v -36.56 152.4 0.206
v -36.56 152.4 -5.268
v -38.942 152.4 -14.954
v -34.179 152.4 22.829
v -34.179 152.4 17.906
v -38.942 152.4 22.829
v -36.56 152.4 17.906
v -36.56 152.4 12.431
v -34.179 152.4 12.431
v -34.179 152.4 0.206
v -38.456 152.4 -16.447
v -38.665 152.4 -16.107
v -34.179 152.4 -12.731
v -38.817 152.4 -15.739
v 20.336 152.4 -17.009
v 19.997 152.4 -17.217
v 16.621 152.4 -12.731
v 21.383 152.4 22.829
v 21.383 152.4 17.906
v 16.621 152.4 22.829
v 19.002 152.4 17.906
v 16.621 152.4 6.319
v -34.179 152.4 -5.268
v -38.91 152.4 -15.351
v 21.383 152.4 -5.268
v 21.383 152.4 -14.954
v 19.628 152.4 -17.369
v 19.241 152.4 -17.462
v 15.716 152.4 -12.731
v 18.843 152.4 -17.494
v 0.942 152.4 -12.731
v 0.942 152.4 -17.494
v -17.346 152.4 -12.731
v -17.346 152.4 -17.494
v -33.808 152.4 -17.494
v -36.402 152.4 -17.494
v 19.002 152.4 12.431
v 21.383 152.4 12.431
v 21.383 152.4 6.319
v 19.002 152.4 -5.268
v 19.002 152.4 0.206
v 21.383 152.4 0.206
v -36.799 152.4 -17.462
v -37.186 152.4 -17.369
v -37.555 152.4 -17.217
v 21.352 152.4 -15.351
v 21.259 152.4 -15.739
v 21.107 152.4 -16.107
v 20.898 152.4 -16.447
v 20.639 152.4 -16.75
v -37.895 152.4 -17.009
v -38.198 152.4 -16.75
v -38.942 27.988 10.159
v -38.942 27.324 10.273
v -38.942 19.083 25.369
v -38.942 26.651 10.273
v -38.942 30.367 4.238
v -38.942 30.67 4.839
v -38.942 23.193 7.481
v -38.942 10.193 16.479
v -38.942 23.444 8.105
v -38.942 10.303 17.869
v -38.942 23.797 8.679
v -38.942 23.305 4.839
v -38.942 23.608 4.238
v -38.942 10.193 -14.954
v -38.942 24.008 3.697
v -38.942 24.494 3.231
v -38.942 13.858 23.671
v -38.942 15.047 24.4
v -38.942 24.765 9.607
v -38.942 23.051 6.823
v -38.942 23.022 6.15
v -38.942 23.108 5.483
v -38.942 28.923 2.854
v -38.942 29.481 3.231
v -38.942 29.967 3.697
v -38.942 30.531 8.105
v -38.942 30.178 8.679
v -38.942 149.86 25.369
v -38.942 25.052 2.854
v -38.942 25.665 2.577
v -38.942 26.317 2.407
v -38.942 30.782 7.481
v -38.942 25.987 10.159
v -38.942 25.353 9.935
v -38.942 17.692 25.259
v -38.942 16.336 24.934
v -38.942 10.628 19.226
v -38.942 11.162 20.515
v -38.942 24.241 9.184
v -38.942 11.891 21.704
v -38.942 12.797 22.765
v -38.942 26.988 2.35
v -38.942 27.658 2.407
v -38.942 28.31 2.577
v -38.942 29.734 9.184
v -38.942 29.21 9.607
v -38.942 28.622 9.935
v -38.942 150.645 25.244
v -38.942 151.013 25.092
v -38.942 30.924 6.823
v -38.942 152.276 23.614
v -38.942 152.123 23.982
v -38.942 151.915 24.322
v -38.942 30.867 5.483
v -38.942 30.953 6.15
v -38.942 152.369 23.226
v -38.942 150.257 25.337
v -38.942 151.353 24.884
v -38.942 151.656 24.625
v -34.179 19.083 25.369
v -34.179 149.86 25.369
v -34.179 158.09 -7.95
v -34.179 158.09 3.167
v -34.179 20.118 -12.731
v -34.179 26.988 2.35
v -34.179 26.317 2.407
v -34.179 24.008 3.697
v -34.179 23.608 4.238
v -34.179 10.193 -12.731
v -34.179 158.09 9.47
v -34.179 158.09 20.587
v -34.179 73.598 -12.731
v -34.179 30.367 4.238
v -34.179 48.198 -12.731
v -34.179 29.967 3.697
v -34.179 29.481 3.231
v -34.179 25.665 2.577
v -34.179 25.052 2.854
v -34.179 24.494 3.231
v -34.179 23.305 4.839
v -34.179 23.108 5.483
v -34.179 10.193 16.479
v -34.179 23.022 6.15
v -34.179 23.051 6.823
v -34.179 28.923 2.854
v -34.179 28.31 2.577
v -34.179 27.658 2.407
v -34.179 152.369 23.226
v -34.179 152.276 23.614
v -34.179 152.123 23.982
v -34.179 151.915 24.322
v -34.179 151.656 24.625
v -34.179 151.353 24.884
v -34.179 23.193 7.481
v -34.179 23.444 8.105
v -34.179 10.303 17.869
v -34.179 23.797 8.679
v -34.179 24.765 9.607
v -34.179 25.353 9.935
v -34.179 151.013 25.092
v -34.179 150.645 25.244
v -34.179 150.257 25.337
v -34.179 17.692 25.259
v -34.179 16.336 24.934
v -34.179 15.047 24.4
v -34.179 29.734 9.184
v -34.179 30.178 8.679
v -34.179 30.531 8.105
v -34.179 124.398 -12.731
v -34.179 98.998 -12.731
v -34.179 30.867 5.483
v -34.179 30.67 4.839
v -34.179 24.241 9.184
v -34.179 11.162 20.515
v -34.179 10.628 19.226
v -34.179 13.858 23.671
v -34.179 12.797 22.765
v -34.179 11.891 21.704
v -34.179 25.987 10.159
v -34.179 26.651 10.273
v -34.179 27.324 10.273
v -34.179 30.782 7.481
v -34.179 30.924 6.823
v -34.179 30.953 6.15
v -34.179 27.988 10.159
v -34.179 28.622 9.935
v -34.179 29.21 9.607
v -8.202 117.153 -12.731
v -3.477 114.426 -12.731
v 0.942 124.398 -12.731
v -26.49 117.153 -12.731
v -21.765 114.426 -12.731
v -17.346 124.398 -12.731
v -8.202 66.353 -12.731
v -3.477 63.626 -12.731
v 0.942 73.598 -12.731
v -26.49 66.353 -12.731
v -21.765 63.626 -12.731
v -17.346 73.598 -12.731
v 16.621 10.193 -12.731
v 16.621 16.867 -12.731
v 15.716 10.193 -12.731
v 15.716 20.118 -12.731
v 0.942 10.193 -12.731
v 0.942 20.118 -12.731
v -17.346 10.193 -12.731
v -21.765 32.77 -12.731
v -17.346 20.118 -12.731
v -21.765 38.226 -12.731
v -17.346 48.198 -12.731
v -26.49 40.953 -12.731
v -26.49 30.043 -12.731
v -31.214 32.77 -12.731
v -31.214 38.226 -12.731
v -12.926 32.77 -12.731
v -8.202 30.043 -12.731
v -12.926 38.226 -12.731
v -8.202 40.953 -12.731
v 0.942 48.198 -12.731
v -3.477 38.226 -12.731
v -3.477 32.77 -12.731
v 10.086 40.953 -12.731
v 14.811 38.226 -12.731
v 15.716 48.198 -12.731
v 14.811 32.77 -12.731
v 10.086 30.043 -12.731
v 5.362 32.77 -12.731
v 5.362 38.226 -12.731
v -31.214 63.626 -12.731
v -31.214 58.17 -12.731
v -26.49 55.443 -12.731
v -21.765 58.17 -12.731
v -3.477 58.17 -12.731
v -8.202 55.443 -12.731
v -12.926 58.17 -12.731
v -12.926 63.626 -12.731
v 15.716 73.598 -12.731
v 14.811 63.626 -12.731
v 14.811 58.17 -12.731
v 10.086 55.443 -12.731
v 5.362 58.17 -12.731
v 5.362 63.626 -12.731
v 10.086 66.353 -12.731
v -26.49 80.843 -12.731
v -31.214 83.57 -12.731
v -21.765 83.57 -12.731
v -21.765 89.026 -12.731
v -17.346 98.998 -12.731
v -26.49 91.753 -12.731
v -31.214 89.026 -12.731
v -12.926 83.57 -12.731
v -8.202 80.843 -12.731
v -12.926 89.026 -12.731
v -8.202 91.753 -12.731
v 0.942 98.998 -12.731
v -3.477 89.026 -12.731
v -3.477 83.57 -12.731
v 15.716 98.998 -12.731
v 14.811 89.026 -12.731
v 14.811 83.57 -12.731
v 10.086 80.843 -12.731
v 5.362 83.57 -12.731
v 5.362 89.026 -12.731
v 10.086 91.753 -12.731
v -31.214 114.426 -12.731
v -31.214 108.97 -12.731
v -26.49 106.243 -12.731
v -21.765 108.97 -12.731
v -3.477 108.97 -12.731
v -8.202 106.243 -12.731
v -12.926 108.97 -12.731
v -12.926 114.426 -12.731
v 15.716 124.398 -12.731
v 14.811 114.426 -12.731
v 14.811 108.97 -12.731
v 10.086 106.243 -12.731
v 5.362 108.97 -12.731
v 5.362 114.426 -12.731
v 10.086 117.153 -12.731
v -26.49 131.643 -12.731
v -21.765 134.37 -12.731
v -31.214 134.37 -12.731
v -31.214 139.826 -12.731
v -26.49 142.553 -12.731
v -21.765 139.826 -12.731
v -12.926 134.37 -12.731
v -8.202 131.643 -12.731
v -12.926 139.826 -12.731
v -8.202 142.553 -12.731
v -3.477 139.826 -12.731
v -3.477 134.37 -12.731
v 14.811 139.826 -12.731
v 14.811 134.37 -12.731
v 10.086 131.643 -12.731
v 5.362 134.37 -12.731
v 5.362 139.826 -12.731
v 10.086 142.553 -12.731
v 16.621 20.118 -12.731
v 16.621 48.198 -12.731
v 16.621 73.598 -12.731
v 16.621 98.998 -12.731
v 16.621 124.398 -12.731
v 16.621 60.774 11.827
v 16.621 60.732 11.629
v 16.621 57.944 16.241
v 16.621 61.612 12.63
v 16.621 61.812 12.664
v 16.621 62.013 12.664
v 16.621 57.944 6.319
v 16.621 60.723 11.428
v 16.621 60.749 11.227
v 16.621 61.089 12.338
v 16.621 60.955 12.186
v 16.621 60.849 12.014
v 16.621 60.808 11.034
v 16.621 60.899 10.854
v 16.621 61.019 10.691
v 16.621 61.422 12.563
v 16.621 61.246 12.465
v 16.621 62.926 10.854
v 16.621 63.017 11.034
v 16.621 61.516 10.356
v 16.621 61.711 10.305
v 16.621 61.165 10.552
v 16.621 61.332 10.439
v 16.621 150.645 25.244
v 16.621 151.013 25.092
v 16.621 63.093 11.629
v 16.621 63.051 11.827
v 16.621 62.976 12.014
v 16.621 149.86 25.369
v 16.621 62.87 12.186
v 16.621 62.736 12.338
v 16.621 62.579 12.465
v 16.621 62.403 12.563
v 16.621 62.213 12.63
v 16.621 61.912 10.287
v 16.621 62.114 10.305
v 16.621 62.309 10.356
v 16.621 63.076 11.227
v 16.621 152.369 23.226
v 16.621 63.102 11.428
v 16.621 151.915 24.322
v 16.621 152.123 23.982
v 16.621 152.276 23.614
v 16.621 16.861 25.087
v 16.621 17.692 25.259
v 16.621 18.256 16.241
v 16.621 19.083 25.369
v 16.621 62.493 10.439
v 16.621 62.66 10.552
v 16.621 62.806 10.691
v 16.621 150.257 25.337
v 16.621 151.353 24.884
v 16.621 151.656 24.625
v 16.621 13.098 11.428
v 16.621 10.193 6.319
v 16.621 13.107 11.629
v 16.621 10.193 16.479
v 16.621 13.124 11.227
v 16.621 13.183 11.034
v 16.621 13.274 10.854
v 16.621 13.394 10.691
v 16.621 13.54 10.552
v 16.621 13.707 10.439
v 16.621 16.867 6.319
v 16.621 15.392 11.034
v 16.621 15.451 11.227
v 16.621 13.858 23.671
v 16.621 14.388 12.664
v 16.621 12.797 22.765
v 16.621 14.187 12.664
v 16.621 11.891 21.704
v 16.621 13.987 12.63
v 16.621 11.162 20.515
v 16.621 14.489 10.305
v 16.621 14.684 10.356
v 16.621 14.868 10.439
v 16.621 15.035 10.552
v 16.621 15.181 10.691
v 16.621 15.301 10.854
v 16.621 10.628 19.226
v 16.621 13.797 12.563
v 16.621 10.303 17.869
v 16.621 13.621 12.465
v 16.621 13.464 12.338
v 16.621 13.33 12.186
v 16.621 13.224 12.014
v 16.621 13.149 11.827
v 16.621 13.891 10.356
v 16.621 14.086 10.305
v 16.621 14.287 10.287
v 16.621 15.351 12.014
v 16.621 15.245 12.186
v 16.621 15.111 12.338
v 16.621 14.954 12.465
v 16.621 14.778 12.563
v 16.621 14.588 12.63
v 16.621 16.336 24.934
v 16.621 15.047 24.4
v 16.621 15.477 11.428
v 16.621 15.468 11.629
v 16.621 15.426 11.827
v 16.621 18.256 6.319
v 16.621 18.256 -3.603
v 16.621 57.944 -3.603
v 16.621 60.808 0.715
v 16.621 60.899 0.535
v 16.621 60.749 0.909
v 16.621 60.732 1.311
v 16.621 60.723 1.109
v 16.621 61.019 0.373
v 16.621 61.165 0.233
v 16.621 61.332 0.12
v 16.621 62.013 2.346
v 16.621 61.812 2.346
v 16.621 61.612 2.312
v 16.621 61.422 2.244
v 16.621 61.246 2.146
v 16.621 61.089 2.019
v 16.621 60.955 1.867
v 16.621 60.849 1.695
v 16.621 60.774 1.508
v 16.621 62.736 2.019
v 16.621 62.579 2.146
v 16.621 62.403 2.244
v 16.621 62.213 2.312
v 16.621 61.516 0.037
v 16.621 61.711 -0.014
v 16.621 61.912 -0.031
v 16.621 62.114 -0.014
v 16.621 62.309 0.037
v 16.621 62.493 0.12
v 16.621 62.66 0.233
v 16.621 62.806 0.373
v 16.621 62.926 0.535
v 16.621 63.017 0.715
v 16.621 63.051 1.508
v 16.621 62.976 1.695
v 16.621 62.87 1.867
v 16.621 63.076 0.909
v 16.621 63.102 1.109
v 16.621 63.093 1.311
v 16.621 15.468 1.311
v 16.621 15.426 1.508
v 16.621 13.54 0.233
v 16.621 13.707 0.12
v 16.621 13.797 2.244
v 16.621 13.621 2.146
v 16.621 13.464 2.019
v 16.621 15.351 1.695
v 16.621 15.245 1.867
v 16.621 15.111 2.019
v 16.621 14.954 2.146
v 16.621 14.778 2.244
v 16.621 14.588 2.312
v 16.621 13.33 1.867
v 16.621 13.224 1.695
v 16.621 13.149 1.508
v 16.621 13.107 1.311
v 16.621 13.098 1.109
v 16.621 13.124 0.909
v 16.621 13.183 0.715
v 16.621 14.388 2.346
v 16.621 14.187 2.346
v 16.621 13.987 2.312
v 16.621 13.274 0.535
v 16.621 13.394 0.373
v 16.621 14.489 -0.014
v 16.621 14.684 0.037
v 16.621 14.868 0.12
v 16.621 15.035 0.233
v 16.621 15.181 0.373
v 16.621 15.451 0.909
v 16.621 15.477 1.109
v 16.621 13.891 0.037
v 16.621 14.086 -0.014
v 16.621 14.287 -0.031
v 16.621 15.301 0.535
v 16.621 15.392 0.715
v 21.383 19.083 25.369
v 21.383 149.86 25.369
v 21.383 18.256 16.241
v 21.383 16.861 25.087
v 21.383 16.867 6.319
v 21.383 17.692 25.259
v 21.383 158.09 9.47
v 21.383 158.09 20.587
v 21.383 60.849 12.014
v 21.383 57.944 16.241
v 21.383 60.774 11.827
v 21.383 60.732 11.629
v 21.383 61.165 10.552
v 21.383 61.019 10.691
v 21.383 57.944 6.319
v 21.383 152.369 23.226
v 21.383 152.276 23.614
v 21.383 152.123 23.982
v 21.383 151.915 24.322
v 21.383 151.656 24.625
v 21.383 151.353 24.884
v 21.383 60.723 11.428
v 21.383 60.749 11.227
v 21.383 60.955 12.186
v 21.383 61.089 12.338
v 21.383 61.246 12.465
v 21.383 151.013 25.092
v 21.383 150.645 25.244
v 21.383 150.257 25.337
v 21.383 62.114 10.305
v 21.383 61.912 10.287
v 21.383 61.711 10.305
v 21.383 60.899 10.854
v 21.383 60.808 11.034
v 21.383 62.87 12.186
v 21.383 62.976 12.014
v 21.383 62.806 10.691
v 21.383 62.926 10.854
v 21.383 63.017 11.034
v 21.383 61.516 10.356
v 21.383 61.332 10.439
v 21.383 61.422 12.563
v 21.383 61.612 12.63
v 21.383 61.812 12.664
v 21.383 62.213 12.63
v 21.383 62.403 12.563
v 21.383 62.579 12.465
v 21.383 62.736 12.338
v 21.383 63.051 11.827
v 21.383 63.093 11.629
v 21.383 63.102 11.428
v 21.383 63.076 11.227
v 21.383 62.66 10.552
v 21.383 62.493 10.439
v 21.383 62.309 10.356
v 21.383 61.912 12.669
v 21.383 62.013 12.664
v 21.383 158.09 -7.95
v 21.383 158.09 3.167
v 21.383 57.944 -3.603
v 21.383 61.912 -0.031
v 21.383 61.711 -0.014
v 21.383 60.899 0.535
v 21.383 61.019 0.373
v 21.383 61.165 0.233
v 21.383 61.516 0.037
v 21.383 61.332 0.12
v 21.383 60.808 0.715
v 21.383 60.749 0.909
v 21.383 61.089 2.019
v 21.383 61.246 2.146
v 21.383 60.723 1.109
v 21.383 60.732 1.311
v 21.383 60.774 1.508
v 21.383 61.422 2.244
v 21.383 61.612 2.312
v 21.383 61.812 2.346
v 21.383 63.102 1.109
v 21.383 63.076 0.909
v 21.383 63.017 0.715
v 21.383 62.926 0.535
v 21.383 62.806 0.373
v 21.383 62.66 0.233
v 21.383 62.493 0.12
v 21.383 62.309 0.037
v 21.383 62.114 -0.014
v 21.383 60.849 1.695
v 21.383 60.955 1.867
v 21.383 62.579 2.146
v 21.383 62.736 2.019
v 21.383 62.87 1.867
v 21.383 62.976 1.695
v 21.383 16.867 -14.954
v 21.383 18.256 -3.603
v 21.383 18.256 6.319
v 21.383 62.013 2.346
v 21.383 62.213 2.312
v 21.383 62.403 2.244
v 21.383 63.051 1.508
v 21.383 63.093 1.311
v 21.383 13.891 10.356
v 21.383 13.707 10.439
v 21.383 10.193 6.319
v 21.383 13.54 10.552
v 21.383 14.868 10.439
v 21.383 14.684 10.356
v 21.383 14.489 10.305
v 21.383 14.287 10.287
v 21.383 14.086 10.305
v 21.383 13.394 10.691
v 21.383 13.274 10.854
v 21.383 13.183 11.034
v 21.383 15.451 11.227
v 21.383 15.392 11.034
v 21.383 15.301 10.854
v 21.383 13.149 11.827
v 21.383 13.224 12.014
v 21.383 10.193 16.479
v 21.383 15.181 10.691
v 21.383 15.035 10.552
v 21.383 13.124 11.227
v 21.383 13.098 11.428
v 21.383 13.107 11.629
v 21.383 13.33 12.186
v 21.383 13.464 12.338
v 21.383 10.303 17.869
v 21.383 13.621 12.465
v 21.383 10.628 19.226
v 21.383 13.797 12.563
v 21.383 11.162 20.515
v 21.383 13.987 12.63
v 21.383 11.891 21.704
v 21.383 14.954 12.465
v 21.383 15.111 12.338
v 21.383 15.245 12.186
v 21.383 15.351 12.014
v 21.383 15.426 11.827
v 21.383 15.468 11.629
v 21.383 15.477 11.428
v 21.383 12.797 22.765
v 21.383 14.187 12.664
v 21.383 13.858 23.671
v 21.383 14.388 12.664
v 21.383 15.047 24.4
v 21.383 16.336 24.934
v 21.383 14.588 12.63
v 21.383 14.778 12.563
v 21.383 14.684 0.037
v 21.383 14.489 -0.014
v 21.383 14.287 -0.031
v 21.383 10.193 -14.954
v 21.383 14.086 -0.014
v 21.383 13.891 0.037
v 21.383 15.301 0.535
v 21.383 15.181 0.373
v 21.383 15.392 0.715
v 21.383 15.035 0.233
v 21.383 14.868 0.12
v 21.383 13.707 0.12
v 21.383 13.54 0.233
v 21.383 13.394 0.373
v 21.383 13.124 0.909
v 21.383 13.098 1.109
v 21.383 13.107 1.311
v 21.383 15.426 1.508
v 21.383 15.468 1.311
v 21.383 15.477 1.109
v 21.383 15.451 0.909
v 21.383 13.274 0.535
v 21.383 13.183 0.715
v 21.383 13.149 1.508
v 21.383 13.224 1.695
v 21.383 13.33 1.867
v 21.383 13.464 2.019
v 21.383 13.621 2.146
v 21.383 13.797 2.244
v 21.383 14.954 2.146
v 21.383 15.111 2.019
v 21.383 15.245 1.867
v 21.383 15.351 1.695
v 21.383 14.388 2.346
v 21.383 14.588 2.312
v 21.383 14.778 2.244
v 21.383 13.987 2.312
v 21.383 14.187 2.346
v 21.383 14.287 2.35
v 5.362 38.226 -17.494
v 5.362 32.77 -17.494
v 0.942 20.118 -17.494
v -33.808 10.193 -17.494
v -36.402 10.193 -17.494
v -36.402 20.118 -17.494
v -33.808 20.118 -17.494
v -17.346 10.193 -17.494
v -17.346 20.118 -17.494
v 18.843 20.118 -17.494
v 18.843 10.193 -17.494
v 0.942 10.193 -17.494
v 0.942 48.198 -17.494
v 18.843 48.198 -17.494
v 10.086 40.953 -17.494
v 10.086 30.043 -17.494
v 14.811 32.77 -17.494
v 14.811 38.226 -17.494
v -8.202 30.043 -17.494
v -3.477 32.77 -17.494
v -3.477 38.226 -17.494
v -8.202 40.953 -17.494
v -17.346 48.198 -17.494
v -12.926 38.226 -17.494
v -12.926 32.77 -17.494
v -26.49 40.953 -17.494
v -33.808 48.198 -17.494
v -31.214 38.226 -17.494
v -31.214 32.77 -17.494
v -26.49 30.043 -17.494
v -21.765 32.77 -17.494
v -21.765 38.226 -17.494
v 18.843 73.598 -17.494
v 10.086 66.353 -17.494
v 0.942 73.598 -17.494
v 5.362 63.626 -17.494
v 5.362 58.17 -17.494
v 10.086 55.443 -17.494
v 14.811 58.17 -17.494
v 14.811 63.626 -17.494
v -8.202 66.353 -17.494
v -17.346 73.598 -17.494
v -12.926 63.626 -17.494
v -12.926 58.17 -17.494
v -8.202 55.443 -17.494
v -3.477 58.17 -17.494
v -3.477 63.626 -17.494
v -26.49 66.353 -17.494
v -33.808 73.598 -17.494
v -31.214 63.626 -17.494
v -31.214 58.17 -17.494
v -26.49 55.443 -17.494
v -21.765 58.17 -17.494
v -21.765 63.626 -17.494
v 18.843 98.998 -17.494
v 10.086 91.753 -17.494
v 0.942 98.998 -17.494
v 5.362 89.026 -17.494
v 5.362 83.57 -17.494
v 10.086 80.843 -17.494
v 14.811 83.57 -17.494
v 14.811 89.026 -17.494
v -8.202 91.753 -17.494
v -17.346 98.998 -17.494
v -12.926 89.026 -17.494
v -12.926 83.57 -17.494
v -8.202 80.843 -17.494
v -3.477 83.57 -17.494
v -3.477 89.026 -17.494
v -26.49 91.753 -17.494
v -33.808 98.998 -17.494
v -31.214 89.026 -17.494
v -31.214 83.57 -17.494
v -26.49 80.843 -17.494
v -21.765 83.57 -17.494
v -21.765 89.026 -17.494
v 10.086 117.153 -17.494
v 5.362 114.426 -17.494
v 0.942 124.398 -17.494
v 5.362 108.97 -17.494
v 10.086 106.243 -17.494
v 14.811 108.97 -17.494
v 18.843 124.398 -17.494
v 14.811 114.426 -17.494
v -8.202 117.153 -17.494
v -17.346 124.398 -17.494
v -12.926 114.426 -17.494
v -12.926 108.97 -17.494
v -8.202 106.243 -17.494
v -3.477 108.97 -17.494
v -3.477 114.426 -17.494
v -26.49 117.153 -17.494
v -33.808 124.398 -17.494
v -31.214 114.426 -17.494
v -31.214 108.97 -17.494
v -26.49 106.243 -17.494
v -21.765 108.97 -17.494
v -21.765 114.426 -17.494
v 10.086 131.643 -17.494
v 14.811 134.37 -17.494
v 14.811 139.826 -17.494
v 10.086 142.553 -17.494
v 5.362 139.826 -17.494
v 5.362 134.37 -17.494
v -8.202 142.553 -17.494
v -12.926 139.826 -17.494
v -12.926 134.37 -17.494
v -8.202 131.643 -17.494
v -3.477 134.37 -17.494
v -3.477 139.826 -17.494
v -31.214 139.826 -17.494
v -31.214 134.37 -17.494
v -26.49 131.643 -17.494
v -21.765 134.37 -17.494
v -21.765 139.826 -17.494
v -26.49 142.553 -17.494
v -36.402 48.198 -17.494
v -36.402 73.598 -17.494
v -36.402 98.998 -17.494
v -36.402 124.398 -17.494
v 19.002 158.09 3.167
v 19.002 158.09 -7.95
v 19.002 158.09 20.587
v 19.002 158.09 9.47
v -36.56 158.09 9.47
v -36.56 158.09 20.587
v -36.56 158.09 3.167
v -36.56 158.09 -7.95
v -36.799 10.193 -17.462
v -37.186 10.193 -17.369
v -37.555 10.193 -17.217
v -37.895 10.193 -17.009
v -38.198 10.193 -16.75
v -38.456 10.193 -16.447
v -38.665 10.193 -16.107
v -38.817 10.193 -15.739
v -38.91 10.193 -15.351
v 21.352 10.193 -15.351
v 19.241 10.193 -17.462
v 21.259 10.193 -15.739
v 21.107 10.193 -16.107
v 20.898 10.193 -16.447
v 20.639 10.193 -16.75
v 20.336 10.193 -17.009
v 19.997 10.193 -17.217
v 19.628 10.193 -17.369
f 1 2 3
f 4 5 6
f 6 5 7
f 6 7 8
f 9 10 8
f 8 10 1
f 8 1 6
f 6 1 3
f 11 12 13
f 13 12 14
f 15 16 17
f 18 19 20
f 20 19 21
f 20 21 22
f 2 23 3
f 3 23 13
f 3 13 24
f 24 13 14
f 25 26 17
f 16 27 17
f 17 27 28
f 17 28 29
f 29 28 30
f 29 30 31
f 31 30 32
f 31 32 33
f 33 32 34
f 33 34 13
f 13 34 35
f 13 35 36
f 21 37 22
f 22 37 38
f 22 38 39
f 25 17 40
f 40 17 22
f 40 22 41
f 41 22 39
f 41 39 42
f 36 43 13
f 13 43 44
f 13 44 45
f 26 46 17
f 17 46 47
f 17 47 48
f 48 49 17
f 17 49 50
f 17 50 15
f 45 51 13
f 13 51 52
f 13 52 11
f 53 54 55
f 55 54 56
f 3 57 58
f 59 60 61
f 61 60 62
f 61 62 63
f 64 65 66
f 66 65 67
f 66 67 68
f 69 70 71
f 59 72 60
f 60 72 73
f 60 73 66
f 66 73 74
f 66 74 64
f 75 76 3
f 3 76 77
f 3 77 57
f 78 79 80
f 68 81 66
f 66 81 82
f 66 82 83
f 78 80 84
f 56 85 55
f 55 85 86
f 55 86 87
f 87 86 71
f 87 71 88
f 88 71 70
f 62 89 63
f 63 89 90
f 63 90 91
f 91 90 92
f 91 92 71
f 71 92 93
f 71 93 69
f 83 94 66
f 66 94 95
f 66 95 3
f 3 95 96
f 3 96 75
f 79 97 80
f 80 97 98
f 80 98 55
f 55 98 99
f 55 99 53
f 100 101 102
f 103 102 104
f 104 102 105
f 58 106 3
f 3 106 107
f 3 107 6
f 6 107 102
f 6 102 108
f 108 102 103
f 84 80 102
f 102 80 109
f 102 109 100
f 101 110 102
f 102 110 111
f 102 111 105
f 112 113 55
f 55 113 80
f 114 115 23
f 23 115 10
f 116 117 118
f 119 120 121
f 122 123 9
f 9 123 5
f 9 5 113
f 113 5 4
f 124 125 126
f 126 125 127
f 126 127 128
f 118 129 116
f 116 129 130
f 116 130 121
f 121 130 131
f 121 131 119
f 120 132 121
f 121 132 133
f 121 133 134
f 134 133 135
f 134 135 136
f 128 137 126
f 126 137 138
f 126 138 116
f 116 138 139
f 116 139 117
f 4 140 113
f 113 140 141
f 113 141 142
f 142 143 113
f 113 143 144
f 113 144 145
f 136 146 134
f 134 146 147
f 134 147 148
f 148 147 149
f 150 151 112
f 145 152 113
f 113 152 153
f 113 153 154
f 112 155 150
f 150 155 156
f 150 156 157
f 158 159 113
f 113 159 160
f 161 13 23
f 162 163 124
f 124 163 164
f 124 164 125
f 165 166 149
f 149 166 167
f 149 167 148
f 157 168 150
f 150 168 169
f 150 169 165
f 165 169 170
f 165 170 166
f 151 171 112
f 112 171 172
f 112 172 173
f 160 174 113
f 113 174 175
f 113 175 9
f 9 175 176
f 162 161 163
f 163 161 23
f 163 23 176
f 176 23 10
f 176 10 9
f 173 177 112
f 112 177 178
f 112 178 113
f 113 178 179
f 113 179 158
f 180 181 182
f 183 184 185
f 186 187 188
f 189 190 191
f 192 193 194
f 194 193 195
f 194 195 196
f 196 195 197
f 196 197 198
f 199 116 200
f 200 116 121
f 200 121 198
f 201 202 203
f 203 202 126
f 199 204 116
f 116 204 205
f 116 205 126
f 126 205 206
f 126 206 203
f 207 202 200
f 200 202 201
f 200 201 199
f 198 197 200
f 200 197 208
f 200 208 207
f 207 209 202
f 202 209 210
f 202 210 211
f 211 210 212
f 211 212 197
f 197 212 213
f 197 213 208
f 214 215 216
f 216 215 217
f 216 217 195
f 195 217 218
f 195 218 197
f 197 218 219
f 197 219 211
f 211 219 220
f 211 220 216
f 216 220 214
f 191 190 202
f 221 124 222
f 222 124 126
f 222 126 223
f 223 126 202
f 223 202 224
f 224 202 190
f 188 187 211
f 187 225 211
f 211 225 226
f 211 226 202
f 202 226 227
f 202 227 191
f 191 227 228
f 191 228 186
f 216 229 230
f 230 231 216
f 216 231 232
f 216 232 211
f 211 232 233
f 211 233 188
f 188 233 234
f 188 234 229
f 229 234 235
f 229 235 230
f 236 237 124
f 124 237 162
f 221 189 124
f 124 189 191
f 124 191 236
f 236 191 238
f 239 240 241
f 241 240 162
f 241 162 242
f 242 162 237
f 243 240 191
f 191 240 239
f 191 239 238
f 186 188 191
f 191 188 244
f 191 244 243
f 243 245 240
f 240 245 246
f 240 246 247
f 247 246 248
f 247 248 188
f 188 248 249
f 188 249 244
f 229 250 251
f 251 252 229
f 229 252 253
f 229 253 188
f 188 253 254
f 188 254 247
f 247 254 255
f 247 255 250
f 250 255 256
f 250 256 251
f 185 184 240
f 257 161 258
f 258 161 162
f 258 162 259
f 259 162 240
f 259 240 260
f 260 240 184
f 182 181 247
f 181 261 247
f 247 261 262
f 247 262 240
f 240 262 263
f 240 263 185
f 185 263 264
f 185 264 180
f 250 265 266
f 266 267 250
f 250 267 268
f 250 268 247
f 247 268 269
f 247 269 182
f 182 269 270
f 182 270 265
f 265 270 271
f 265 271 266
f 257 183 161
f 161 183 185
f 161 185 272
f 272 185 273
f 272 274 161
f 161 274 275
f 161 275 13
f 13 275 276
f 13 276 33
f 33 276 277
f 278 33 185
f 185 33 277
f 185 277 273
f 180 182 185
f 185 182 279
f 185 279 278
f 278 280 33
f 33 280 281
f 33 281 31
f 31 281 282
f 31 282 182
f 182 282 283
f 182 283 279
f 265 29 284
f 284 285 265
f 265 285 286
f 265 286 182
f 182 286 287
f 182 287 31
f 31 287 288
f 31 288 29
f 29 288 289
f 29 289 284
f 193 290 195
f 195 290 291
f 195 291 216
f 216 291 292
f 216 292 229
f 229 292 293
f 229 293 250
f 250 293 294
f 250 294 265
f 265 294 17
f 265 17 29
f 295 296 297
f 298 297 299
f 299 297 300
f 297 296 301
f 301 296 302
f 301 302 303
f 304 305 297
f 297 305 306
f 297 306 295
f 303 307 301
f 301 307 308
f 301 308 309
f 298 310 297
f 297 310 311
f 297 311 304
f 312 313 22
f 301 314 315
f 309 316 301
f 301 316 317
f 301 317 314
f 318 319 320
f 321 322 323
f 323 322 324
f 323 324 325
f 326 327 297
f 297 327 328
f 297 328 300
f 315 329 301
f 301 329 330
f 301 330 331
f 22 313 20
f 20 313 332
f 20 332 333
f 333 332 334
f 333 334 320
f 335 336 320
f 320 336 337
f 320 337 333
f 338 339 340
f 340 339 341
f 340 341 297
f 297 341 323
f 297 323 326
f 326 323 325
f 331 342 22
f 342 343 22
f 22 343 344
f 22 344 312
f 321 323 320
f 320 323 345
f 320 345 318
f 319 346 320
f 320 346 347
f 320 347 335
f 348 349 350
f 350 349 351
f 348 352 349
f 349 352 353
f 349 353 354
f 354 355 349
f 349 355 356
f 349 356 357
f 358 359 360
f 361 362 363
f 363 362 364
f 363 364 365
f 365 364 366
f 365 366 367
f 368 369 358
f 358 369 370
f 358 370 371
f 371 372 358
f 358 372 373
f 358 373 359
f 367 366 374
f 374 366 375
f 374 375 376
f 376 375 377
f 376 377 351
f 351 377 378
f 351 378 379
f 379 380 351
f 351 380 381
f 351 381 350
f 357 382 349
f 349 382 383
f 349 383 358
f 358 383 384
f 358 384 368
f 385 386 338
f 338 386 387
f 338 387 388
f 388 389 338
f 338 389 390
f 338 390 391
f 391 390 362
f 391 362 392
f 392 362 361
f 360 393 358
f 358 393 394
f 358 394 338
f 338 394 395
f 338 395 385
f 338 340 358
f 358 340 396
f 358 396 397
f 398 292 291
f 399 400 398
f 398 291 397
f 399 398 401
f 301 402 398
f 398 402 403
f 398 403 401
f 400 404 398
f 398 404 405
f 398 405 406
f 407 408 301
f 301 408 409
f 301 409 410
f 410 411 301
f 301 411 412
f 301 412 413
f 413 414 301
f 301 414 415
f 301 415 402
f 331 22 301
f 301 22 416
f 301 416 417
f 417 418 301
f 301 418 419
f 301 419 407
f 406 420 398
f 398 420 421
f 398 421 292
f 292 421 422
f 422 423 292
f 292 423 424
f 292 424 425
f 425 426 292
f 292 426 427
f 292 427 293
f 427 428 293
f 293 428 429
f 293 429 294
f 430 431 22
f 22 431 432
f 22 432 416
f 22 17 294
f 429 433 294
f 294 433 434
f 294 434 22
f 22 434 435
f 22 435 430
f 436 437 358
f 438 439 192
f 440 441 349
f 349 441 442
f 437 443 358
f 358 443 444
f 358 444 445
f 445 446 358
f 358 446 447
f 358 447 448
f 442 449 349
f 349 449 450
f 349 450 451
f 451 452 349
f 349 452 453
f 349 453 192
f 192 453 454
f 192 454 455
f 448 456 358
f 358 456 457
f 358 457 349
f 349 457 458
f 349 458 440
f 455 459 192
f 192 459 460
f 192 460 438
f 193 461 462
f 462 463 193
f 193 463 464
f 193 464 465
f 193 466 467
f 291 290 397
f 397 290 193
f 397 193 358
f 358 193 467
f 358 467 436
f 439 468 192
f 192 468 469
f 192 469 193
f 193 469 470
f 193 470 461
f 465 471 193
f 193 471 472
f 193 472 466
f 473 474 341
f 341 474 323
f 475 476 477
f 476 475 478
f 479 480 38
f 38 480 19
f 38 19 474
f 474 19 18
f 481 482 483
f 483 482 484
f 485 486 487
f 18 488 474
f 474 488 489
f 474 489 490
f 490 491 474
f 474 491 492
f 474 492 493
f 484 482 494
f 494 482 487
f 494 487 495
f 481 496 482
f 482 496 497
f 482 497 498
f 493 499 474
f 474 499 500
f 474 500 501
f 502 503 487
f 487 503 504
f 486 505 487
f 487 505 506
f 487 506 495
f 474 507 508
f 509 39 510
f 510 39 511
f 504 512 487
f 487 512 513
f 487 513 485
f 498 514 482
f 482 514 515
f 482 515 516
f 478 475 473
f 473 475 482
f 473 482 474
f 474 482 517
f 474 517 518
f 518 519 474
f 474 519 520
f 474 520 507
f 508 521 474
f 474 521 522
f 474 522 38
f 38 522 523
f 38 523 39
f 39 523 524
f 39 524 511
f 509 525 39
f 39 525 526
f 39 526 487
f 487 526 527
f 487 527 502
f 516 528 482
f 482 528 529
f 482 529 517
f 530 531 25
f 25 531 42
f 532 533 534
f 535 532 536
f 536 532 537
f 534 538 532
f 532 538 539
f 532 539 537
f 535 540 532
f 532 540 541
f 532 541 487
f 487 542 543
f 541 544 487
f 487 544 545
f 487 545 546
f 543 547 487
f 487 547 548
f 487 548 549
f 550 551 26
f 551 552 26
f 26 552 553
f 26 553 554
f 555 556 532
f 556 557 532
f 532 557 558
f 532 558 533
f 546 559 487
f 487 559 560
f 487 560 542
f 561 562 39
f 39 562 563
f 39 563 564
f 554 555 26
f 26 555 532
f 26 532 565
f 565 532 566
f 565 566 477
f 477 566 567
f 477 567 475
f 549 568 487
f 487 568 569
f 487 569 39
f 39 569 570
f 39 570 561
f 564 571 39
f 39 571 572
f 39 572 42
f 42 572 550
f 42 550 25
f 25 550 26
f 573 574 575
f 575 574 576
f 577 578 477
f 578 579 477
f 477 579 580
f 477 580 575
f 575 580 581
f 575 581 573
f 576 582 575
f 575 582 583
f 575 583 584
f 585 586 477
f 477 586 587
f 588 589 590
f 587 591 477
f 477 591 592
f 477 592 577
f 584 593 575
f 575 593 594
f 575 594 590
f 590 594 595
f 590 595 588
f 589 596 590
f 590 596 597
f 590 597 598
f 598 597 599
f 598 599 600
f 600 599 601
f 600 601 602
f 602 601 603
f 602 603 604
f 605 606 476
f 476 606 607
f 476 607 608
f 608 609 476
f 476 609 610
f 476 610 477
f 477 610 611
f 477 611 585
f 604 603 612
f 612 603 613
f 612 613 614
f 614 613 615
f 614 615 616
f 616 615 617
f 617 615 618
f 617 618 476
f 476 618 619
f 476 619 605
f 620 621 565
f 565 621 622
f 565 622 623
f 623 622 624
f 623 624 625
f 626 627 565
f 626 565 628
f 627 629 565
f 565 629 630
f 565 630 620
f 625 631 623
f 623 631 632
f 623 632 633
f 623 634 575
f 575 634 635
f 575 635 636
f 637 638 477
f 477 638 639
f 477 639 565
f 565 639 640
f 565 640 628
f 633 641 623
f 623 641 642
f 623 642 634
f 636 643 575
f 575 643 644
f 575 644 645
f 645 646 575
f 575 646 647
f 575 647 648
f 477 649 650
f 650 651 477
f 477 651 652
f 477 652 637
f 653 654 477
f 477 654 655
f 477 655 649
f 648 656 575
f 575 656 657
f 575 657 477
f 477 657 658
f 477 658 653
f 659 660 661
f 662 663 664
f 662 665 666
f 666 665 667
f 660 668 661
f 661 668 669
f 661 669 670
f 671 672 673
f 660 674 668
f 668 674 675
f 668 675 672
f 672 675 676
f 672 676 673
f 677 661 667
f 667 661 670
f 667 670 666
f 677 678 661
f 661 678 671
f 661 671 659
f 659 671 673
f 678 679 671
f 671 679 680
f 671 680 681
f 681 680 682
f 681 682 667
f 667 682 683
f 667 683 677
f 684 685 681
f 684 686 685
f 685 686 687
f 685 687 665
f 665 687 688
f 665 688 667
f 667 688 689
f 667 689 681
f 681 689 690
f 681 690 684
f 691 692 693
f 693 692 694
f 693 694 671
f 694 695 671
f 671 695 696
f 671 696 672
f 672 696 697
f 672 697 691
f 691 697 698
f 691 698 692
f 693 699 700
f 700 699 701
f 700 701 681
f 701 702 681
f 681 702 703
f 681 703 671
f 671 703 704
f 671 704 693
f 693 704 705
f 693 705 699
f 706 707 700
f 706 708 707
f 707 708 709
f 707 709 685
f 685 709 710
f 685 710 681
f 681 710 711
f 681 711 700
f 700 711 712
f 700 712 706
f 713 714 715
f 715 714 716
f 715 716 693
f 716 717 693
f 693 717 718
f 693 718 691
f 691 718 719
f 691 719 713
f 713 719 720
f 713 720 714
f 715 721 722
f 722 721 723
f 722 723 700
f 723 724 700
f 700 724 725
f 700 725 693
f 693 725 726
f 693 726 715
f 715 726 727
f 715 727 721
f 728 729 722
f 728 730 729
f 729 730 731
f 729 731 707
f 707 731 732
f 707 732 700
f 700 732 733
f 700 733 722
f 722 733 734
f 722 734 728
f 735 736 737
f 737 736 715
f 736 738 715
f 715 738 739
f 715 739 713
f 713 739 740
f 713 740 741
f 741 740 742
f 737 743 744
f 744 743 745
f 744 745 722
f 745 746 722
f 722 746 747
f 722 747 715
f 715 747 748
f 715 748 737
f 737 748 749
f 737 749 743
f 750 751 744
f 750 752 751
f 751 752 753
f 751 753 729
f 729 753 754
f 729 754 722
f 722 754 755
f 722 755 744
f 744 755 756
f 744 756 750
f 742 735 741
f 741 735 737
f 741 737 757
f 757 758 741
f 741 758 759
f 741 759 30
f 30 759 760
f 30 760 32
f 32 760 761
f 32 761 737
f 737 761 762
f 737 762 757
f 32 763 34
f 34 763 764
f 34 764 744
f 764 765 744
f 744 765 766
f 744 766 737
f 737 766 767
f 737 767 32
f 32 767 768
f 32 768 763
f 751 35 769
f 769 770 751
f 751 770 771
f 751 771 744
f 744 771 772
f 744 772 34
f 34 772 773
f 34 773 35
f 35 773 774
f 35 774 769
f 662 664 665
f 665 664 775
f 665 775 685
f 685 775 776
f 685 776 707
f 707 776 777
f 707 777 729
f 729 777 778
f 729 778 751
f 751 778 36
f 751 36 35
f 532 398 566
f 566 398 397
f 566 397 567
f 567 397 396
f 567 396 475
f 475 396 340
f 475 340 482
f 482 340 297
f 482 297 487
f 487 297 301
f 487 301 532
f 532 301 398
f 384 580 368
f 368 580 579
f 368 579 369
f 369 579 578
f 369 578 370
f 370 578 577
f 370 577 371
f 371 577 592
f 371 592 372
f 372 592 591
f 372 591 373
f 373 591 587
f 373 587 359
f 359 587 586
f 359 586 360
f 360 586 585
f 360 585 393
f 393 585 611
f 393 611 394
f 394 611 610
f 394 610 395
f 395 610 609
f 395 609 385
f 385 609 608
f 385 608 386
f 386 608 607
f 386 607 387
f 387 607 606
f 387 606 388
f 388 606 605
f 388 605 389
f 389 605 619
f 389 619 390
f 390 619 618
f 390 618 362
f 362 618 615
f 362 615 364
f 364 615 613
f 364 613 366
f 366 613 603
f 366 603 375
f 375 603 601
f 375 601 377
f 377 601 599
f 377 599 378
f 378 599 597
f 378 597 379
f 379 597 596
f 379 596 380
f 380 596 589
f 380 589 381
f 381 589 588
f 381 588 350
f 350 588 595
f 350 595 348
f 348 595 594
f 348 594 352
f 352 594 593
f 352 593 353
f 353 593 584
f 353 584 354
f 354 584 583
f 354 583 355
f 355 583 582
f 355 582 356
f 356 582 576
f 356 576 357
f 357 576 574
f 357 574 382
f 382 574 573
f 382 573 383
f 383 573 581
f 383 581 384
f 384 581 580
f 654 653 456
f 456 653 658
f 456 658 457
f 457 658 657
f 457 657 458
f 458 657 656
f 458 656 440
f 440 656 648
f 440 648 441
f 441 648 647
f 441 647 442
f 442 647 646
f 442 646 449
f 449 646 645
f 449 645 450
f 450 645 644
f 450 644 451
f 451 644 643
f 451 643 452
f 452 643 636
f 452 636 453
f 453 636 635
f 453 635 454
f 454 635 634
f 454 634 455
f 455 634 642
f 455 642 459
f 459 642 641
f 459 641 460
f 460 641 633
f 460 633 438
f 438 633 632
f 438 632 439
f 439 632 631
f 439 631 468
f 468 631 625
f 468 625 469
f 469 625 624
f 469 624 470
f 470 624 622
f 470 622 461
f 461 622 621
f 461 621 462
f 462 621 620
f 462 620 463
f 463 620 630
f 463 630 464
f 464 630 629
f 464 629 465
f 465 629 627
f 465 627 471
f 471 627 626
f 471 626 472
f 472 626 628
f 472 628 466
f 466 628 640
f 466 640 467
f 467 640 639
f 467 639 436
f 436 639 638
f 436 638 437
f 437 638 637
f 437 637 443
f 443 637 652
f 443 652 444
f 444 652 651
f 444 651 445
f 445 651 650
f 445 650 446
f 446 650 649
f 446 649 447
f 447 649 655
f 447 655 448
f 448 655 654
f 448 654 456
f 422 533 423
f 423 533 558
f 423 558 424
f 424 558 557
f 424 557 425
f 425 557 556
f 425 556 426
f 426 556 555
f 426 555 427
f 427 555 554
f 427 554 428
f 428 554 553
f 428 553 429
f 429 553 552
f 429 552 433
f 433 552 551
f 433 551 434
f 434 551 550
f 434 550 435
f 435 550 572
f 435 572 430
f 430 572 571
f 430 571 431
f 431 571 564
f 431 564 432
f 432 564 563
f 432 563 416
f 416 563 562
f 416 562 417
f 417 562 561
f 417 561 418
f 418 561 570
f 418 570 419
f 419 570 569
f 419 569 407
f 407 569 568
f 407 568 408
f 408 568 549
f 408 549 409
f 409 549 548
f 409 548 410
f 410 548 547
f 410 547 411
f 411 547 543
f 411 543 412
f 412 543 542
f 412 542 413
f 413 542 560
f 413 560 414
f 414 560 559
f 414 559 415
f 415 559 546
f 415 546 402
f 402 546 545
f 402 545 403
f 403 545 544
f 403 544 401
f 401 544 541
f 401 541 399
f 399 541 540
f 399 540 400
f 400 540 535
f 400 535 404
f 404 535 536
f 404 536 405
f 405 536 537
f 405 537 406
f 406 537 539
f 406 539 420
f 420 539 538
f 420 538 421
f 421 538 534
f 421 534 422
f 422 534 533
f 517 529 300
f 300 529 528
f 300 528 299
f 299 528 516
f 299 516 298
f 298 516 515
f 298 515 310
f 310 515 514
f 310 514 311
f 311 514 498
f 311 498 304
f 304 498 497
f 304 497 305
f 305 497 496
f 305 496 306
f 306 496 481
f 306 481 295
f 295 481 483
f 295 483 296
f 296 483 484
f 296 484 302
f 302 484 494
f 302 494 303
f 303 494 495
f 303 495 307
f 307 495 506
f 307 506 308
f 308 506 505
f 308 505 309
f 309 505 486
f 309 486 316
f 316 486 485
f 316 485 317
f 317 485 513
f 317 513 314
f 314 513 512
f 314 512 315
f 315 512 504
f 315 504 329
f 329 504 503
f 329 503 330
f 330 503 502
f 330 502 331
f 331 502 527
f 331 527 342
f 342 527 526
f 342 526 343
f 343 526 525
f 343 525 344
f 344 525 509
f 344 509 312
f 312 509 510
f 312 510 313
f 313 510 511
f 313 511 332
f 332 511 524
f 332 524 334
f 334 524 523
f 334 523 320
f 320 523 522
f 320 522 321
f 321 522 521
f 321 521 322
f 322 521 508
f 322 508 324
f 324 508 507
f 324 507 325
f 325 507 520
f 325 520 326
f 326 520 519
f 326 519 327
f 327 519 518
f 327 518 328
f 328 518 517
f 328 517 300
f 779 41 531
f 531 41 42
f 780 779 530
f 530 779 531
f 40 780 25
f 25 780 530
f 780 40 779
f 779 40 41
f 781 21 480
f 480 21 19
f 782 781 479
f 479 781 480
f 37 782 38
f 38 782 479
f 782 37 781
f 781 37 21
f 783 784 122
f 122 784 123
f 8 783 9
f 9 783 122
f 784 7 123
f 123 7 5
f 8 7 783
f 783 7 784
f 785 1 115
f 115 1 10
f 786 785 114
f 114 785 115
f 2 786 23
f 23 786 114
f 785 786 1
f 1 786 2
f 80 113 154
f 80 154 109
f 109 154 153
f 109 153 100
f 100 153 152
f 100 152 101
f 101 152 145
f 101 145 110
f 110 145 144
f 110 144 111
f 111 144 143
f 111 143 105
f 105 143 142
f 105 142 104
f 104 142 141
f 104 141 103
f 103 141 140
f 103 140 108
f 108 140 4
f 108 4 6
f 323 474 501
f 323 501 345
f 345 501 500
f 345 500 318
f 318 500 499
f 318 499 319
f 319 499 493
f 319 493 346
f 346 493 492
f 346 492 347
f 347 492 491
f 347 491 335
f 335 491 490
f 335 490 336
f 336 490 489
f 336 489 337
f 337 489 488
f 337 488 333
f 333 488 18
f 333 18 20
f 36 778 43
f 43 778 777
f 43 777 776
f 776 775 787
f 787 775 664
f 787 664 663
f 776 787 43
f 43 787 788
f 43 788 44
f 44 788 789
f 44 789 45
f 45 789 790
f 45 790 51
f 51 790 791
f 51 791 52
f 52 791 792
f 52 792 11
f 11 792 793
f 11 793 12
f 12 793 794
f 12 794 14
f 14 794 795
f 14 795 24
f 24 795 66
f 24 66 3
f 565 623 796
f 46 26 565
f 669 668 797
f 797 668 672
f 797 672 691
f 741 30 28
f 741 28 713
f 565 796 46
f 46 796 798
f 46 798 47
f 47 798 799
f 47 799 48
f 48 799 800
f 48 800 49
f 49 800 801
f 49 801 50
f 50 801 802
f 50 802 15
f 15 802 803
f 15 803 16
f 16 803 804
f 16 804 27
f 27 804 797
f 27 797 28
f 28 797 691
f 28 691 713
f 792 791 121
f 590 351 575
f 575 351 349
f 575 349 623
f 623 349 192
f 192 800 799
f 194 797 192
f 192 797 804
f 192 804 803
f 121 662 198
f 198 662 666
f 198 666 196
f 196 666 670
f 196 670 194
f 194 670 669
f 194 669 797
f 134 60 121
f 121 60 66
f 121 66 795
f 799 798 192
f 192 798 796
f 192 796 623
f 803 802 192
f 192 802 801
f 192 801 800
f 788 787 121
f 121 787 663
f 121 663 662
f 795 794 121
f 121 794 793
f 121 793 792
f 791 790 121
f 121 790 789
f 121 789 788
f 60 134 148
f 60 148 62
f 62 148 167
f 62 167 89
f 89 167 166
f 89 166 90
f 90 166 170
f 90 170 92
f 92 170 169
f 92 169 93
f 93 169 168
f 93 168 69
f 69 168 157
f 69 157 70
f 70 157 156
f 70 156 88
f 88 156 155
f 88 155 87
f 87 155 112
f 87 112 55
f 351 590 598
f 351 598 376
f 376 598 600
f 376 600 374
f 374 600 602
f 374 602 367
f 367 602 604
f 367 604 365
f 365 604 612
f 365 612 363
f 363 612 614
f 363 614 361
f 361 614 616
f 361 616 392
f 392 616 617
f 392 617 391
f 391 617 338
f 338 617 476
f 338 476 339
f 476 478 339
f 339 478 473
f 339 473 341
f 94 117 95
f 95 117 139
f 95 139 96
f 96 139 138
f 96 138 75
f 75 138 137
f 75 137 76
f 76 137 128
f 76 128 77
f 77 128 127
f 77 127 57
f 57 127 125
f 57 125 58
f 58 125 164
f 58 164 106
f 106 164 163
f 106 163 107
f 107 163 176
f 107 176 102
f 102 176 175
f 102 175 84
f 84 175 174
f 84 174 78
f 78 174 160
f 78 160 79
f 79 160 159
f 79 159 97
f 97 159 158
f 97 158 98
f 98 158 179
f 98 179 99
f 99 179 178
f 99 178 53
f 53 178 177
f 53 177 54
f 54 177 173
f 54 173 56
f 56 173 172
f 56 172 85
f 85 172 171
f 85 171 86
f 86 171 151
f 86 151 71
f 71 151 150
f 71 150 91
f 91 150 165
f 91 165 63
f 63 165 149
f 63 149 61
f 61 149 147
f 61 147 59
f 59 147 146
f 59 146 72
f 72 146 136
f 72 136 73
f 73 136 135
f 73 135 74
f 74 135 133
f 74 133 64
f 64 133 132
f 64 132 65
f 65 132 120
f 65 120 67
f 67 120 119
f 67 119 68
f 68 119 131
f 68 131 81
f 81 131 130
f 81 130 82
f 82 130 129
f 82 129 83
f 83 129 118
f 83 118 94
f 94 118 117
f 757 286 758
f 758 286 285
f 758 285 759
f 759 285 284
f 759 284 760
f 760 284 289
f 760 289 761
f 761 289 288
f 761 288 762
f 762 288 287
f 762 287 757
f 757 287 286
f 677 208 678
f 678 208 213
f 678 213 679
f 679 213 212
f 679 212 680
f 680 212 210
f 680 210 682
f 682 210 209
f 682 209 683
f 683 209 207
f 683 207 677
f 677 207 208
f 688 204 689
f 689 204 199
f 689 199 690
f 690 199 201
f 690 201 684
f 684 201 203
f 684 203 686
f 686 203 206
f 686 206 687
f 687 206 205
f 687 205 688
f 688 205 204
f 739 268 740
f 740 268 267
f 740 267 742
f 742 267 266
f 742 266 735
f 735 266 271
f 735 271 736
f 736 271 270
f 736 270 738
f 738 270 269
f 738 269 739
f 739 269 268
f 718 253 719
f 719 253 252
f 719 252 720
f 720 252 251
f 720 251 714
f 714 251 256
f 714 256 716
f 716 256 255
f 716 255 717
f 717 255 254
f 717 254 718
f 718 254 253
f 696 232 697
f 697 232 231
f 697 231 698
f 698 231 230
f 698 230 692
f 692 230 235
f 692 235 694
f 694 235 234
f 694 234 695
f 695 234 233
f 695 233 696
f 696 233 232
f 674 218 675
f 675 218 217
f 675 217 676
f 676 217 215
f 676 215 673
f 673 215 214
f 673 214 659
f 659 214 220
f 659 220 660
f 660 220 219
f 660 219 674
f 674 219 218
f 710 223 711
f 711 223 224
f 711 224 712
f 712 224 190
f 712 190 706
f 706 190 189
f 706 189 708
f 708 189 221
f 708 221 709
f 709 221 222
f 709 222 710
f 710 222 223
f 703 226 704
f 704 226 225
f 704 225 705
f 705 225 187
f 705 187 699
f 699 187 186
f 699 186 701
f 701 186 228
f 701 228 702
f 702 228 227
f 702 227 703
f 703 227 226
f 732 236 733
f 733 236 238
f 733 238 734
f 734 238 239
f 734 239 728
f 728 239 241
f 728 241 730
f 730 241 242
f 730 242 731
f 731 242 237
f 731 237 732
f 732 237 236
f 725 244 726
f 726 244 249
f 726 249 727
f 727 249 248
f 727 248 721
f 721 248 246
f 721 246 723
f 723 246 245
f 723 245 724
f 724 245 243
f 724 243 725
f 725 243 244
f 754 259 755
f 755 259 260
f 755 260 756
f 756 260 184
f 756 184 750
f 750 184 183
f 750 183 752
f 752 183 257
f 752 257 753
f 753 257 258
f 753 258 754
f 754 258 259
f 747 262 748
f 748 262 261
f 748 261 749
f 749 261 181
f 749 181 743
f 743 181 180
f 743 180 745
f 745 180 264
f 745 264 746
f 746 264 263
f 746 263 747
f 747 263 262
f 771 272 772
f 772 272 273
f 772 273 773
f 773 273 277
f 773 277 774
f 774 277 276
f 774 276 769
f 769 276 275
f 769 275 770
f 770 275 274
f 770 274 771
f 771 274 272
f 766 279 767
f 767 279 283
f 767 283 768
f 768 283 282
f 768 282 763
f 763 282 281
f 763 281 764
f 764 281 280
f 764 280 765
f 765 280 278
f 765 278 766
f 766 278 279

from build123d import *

# Parameters (mm, degrees)
BOSS_EXTRUDE1_DEPTH = 152.4
SKETCH2_R           = 1.190625
SKETCH2_W           = 19.84375
SKETCH2_H           = 39.6875
CUT_EXTRUDE1_DEPTH  = 6.35
CUT_EXTRUDE2_DEPTH  = 2.38125
CUT_EXTRUDE3_DEPTH  = 2.38125
BOSS_EXTRUDE2_DEPTH = 2.38125
BOSS_EXTRUDE3_DEPTH = 2.38125
FILLET1_R           = 2.54
SKETCH7_W           = 51.674409632
SKETCH7_H           = 14.688438898
CUT_EXTRUDE4_DEPTH  = 172.100000261
FILLET2_R           = 8.89
SKETCH8_R           = 3.96875
CUT_EXTRUDE5_DEPTH  = 170.479485102
CUT_EXTRUDE6_DEPTH  = 169.363218031


with BuildPart() as part:
    # Sketch1 → Boss-Extrude1 (new body)
    with BuildSketch(Plane(origin=(0, 0, 0), x_dir=(1, 0, 0), z_dir=(0, 1, 0))):
        Polygon((-38.941593287, 17.493761907), (21.383406713, 17.493761907), (21.383406713, -25.368738093), (16.620906713, -25.368738093), (16.620906713, 12.731261907), (-34.179093287, 12.731261907), (-34.179093287, -25.368738093), (-38.941593287, -25.368738093), align=None)
    extrude(amount=BOSS_EXTRUDE1_DEPTH)

    # Sketch2 → Cut-Extrude1 (cut)
    with BuildSketch(Plane(origin=(21.383406713, 0, 0), x_dir=(0, 0, -1), z_dir=(1, 0, 0))):
        with Locations((-11.478113093, 14.2875)):
            Circle(SKETCH2_R)
        with Locations((-1.159363093, 14.2875)):
            Circle(SKETCH2_R)
        with Locations((-1.159363093, 61.9125)):
            Circle(SKETCH2_R)
        with Locations((-11.478113093, 61.9125)):
            Circle(SKETCH2_R)
        with Locations((-6.318738093, 38.1)):
            Rectangle(SKETCH2_W, SKETCH2_H)
    extrude(amount=-CUT_EXTRUDE1_DEPTH, mode=Mode.SUBTRACT)

    # Sketch3 → Cut-Extrude2 (cut)
    with BuildSketch(Plane(origin=(21.383406713, 0, 0), x_dir=(0, 0, -1), z_dir=(1, 0, 0))):
        Polygon((-20.587285527, 5.690264064), (-9.47039523, 5.690264064), (-12.431175058, 0), (-17.905824551, 0), align=None)
        Polygon((-0.206301127, 0), (5.268348366, 0), (7.949809342, 5.690264064), (-3.167080955, 5.690264064), align=None)
    extrude(amount=-CUT_EXTRUDE2_DEPTH, mode=Mode.SUBTRACT)

    # Sketch4 → Cut-Extrude3 (cut)
    with BuildSketch(Plane(origin=(-34.179093287, 0, 0), x_dir=(0, 0, -1), z_dir=(1, 0, 0))):
        Polygon((-9.47039523, 5.690264064), (-20.587285527, 5.690264064), (-17.905824551, 0), (-12.431175058, 0), align=None)
        Polygon((5.268348366, 0), (7.949809342, 5.690264064), (-3.167080955, 5.690264064), (-0.206301127, 0), align=None)
    extrude(amount=-CUT_EXTRUDE3_DEPTH, mode=Mode.SUBTRACT)

    # Sketch5 → Boss-Extrude2 (add)
    with BuildSketch(Plane(origin=(21.383406713, 0, 0), x_dir=(0, 0, -1), z_dir=(1, 0, 0))):
        Polygon((-0.206301127, 152.4), (5.268348366, 152.4), (7.949809342, 158.090264064), (-3.167080955, 158.090264064), align=None)
        Polygon((-17.905824551, 152.4), (-12.431175058, 152.4), (-9.47039523, 158.090264064), (-20.587285527, 158.090264064), align=None)
    extrude(amount=-BOSS_EXTRUDE2_DEPTH)

    # Sketch6 → Boss-Extrude3 (add)
    with BuildSketch(Plane(origin=(-34.179093287, 0, 0), x_dir=(0, 0, -1), z_dir=(1, 0, 0))):
        Polygon((-17.905824551, 152.4), (-12.431175058, 152.4), (-9.47039523, 158.090264064), (-20.587285527, 158.090264064), align=None)
        Polygon((5.268348366, 152.4), (7.949809342, 158.090264064), (-3.167080955, 158.090264064), (-0.206301127, 152.4), align=None)
    extrude(amount=-BOSS_EXTRUDE3_DEPTH)

    # Fillet1
    fillet1_edges = [part.edges().sort_by_distance(p)[0] for p in [
        (-36.560343287, 0, 25.368738093),
        (-38.941593287, 76.2, -17.493761907),
        (21.383406713, 76.2, -17.493761907),
        (19.002156713, 152.4, 25.368738093),
        (-36.560343287, 152.4, 25.368738093),
        (19.002156713, 0, 25.368738093),
    ]]
    fillet(fillet1_edges, radius=FILLET1_R)

    # Sketch7 → Cut-Extrude4 (cut, through all)
    with BuildSketch(Plane(origin=(21.383406713, 0, 0), x_dir=(0, 0, -1), z_dir=(1, 0, 0))):
        with Locations((-4.704390425, 2.848923491)):
            Rectangle(SKETCH7_W, SKETCH7_H)
    extrude(amount=-CUT_EXTRUDE4_DEPTH, mode=Mode.SUBTRACT)

    # Fillet2
    fillet2_edges = [part.edges().sort_by_distance(p)[0] for p in [
        (-36.560343287, 10.19314294, 25.368738093),
        (19.002156713, 10.19314294, 25.368738093),
    ]]
    fillet(fillet2_edges, radius=FILLET2_R)

    # Sketch8 → Cut-Extrude5 (cut, through all)
    with BuildSketch(Plane(origin=(-34.179093287, 0, 0), x_dir=(0, 0, -1), z_dir=(1, 0, 0))):
        with Locations((-6.318738093, 26.9875)):
            Circle(SKETCH8_R)
    extrude(amount=-CUT_EXTRUDE5_DEPTH, mode=Mode.SUBTRACT)

    # Sketch9 → Cut-Extrude6 (cut, through all)
    with BuildSketch(Plane(origin=(0, 0, -17.493761907), x_dir=(-1, 0, 0), z_dir=(0, 0, -1))):
        Polygon((8.201765803, 131.642746086), (12.926215978, 134.370408666), (12.926215978, 139.825733827), (8.201765803, 142.553396407), (3.477315628, 139.825733827), (3.477315628, 134.370408666), align=None)
        Polygon((-10.086234197, 131.642746086), (-5.361784022, 134.370408666), (-5.361784022, 139.825733827), (-10.086234197, 142.553396407), (-14.810684372, 139.825733827), (-14.810684372, 134.370408666), align=None)
        Polygon((26.489765803, 131.642746086), (31.214215978, 134.370408666), (31.214215978, 139.825733827), (26.489765803, 142.553396407), (21.765315628, 139.825733827), (21.765315628, 134.370408666), align=None)
        Polygon((8.201765803, 106.242746086), (12.926215978, 108.970408666), (12.926215978, 114.425733827), (8.201765803, 117.153396407), (3.477315628, 114.425733827), (3.477315628, 108.970408666), align=None)
        Polygon((26.489765803, 106.242746086), (31.214215978, 108.970408666), (31.214215978, 114.425733827), (26.489765803, 117.153396407), (21.765315628, 114.425733827), (21.765315628, 108.970408666), align=None)
        Polygon((8.201765803, 80.842746086), (12.926215978, 83.570408666), (12.926215978, 89.025733827), (8.201765803, 91.753396407), (3.477315628, 89.025733827), (3.477315628, 83.570408666), align=None)
        Polygon((26.489765803, 80.842746086), (31.214215978, 83.570408666), (31.214215978, 89.025733827), (26.489765803, 91.753396407), (21.765315628, 89.025733827), (21.765315628, 83.570408666), align=None)
        Polygon((8.201765803, 55.442746086), (12.926215978, 58.170408666), (12.926215978, 63.625733827), (8.201765803, 66.353396407), (3.477315628, 63.625733827), (3.477315628, 58.170408666), align=None)
        Polygon((26.489765803, 55.442746086), (31.214215978, 58.170408666), (31.214215978, 63.625733827), (26.489765803, 66.353396407), (21.765315628, 63.625733827), (21.765315628, 58.170408666), align=None)
        Polygon((8.201765803, 30.042746086), (12.926215978, 32.770408666), (12.926215978, 38.225733827), (8.201765803, 40.953396407), (3.477315628, 38.225733827), (3.477315628, 32.770408666), align=None)
        Polygon((26.489765803, 30.042746086), (31.214215978, 32.770408666), (31.214215978, 38.225733827), (26.489765803, 40.953396407), (21.765315628, 38.225733827), (21.765315628, 32.770408666), align=None)
        Polygon((-10.086234197, 106.242746086), (-5.361784022, 108.970408666), (-5.361784022, 114.425733827), (-10.086234197, 117.153396407), (-14.810684372, 114.425733827), (-14.810684372, 108.970408666), align=None)
        Polygon((-10.086234197, 80.842746086), (-5.361784022, 83.570408666), (-5.361784022, 89.025733827), (-10.086234197, 91.753396407), (-14.810684372, 89.025733827), (-14.810684372, 83.570408666), align=None)
        Polygon((-10.086234197, 55.442746086), (-5.361784022, 58.170408666), (-5.361784022, 63.625733827), (-10.086234197, 66.353396407), (-14.810684372, 63.625733827), (-14.810684372, 58.170408666), align=None)
        Polygon((-10.086234197, 30.042746086), (-5.361784022, 32.770408666), (-5.361784022, 38.225733827), (-10.086234197, 40.953396407), (-14.810684372, 38.225733827), (-14.810684372, 32.770408666), align=None)
    extrude(amount=-CUT_EXTRUDE6_DEPTH, mode=Mode.SUBTRACT)


solid = part.part
